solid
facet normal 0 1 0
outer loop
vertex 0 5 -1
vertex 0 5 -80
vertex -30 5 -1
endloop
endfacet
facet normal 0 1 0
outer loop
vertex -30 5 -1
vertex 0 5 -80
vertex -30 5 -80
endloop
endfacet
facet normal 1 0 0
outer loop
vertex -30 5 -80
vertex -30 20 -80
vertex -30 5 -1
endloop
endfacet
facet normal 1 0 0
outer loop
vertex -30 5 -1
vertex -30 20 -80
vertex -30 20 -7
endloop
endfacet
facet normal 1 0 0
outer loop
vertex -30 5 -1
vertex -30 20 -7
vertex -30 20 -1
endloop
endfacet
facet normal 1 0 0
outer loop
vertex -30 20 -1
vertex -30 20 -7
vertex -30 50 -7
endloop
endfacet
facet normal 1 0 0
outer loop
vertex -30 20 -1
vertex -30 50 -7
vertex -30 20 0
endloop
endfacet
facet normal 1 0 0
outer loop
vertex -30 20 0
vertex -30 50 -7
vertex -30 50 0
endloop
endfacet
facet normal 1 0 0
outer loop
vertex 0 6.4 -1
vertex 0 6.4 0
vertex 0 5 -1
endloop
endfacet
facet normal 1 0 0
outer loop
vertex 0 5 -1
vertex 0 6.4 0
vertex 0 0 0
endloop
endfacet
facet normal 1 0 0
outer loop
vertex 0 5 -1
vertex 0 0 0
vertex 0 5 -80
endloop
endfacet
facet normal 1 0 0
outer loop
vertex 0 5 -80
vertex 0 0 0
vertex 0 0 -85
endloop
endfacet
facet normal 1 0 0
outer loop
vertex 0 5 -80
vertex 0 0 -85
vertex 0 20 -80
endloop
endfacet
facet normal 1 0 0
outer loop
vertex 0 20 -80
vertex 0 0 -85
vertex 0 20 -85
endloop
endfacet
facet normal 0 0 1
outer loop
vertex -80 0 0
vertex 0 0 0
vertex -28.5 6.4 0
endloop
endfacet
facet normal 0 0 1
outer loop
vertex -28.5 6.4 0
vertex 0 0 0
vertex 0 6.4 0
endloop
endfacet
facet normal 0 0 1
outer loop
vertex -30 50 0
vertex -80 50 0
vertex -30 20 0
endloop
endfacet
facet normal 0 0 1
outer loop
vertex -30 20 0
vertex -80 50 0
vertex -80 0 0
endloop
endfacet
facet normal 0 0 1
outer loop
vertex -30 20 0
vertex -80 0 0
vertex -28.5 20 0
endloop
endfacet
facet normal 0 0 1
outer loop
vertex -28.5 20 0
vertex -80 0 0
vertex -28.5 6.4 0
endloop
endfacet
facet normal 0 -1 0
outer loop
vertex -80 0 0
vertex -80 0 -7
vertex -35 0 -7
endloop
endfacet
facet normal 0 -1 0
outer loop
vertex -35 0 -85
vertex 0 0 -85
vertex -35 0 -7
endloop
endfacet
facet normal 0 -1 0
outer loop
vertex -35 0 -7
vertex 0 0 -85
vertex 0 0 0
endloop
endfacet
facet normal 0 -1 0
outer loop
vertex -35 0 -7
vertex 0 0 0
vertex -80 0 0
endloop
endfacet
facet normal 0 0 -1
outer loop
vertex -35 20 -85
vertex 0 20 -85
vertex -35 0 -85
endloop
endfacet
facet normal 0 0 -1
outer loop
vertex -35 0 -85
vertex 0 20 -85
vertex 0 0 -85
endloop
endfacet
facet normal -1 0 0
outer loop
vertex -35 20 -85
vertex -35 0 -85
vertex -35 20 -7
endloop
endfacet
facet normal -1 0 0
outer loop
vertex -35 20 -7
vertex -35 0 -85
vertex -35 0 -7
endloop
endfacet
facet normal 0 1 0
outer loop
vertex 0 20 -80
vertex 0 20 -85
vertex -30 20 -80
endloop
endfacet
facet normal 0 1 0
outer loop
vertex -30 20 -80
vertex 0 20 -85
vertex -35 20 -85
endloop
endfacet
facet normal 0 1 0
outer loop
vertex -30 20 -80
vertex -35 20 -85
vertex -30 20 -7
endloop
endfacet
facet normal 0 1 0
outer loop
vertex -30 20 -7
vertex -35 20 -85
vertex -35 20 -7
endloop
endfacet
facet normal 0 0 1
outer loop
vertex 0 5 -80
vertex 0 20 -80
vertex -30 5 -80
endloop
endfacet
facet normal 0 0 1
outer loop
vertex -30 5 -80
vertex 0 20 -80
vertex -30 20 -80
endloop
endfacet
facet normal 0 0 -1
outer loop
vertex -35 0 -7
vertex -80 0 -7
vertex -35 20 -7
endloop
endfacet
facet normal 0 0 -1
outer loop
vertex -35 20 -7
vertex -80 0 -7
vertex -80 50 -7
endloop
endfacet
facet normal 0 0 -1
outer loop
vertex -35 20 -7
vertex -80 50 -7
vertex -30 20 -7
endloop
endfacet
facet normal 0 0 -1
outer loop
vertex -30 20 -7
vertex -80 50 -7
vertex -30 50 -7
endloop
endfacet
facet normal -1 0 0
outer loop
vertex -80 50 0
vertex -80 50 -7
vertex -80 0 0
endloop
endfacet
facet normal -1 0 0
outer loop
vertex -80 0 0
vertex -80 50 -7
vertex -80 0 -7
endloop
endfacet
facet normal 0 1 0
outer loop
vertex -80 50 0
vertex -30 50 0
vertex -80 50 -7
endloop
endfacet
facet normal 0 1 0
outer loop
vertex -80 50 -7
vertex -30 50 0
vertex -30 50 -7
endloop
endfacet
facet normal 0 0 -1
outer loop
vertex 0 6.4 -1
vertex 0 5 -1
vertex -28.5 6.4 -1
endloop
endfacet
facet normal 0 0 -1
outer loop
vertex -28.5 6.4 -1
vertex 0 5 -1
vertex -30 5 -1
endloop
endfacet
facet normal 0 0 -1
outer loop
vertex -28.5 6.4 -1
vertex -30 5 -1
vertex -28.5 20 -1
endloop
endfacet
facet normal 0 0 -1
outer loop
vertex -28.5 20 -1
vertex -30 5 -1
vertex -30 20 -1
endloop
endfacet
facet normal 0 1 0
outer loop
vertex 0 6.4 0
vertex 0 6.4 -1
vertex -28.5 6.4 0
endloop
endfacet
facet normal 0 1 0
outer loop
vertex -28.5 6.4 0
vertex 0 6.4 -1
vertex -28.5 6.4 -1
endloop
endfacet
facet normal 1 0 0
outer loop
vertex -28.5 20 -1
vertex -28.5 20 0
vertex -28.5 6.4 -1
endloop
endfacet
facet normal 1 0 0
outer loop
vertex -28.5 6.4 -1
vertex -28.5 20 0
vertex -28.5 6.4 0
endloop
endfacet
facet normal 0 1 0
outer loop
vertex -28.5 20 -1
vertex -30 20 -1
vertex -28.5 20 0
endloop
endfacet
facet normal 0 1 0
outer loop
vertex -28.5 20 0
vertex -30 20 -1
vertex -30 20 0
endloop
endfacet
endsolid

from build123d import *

# Parameters (mm, degrees)
BOSS_EXTRUDE1_DEPTH = 5
BOSS_EXTRUDE2_DEPTH = 20
BOSS_EXTRUDE3_DEPTH = 50
SKETCH2_W           = 28.5
SKETCH2_H           = 1
BOSS_EXTRUDE4_DEPTH = 1.4
SKETCH2_3_W         = 1.5
SKETCH2_3_H         = 1
BOSS_EXTRUDE5_DEPTH = 15


with BuildPart() as part:
    # Sketch1 → Boss-Extrude1 (new body)
    with BuildSketch(Plane(origin=(0, 0, 0), x_dir=(1, 0, 0), z_dir=(0, 1, 0))):
        Polygon((0, 80), (-30, 80), (-30, 7), (-30, 0), (0, 0), align=None)
    extrude(amount=BOSS_EXTRUDE1_DEPTH)

    # Sketch1<3> → Boss-Extrude2 (add)
    with BuildSketch(Plane(origin=(0, 0, 0), x_dir=(1, 0, 0), z_dir=(0, 1, 0))):
        Polygon((-35, 85), (-35, 7), (-30, 7), (-30, 80), (0, 80), (0, 85), align=None)
    extrude(amount=BOSS_EXTRUDE2_DEPTH)

    # Sketch1<4> → Boss-Extrude3 (add)
    with BuildSketch(Plane(origin=(0, 0, 0), x_dir=(1, 0, 0), z_dir=(0, 1, 0))):
        Polygon((-30, 0), (-30, 7), (-35, 7), (-80, 7), (-80, 0), align=None)
    extrude(amount=BOSS_EXTRUDE3_DEPTH)

    # Sketch2 → Boss-Extrude4 (add)
    with BuildSketch(Plane(origin=(0, 5, 0), x_dir=(1, 0, 0), z_dir=(0, 1, 0))):
        with Locations((-14.25, 0.5)):
            Rectangle(SKETCH2_W, SKETCH2_H)
    extrude(amount=BOSS_EXTRUDE4_DEPTH)

    # Sketch2<3> → Boss-Extrude5 (add)
    with BuildSketch(Plane(origin=(0, 5, 0), x_dir=(1, 0, 0), z_dir=(0, 1, 0))):
        with Locations((-29.25, 0.5)):
            Rectangle(SKETCH2_3_W, SKETCH2_3_H)
    extrude(amount=BOSS_EXTRUDE5_DEPTH)


solid = part.part
